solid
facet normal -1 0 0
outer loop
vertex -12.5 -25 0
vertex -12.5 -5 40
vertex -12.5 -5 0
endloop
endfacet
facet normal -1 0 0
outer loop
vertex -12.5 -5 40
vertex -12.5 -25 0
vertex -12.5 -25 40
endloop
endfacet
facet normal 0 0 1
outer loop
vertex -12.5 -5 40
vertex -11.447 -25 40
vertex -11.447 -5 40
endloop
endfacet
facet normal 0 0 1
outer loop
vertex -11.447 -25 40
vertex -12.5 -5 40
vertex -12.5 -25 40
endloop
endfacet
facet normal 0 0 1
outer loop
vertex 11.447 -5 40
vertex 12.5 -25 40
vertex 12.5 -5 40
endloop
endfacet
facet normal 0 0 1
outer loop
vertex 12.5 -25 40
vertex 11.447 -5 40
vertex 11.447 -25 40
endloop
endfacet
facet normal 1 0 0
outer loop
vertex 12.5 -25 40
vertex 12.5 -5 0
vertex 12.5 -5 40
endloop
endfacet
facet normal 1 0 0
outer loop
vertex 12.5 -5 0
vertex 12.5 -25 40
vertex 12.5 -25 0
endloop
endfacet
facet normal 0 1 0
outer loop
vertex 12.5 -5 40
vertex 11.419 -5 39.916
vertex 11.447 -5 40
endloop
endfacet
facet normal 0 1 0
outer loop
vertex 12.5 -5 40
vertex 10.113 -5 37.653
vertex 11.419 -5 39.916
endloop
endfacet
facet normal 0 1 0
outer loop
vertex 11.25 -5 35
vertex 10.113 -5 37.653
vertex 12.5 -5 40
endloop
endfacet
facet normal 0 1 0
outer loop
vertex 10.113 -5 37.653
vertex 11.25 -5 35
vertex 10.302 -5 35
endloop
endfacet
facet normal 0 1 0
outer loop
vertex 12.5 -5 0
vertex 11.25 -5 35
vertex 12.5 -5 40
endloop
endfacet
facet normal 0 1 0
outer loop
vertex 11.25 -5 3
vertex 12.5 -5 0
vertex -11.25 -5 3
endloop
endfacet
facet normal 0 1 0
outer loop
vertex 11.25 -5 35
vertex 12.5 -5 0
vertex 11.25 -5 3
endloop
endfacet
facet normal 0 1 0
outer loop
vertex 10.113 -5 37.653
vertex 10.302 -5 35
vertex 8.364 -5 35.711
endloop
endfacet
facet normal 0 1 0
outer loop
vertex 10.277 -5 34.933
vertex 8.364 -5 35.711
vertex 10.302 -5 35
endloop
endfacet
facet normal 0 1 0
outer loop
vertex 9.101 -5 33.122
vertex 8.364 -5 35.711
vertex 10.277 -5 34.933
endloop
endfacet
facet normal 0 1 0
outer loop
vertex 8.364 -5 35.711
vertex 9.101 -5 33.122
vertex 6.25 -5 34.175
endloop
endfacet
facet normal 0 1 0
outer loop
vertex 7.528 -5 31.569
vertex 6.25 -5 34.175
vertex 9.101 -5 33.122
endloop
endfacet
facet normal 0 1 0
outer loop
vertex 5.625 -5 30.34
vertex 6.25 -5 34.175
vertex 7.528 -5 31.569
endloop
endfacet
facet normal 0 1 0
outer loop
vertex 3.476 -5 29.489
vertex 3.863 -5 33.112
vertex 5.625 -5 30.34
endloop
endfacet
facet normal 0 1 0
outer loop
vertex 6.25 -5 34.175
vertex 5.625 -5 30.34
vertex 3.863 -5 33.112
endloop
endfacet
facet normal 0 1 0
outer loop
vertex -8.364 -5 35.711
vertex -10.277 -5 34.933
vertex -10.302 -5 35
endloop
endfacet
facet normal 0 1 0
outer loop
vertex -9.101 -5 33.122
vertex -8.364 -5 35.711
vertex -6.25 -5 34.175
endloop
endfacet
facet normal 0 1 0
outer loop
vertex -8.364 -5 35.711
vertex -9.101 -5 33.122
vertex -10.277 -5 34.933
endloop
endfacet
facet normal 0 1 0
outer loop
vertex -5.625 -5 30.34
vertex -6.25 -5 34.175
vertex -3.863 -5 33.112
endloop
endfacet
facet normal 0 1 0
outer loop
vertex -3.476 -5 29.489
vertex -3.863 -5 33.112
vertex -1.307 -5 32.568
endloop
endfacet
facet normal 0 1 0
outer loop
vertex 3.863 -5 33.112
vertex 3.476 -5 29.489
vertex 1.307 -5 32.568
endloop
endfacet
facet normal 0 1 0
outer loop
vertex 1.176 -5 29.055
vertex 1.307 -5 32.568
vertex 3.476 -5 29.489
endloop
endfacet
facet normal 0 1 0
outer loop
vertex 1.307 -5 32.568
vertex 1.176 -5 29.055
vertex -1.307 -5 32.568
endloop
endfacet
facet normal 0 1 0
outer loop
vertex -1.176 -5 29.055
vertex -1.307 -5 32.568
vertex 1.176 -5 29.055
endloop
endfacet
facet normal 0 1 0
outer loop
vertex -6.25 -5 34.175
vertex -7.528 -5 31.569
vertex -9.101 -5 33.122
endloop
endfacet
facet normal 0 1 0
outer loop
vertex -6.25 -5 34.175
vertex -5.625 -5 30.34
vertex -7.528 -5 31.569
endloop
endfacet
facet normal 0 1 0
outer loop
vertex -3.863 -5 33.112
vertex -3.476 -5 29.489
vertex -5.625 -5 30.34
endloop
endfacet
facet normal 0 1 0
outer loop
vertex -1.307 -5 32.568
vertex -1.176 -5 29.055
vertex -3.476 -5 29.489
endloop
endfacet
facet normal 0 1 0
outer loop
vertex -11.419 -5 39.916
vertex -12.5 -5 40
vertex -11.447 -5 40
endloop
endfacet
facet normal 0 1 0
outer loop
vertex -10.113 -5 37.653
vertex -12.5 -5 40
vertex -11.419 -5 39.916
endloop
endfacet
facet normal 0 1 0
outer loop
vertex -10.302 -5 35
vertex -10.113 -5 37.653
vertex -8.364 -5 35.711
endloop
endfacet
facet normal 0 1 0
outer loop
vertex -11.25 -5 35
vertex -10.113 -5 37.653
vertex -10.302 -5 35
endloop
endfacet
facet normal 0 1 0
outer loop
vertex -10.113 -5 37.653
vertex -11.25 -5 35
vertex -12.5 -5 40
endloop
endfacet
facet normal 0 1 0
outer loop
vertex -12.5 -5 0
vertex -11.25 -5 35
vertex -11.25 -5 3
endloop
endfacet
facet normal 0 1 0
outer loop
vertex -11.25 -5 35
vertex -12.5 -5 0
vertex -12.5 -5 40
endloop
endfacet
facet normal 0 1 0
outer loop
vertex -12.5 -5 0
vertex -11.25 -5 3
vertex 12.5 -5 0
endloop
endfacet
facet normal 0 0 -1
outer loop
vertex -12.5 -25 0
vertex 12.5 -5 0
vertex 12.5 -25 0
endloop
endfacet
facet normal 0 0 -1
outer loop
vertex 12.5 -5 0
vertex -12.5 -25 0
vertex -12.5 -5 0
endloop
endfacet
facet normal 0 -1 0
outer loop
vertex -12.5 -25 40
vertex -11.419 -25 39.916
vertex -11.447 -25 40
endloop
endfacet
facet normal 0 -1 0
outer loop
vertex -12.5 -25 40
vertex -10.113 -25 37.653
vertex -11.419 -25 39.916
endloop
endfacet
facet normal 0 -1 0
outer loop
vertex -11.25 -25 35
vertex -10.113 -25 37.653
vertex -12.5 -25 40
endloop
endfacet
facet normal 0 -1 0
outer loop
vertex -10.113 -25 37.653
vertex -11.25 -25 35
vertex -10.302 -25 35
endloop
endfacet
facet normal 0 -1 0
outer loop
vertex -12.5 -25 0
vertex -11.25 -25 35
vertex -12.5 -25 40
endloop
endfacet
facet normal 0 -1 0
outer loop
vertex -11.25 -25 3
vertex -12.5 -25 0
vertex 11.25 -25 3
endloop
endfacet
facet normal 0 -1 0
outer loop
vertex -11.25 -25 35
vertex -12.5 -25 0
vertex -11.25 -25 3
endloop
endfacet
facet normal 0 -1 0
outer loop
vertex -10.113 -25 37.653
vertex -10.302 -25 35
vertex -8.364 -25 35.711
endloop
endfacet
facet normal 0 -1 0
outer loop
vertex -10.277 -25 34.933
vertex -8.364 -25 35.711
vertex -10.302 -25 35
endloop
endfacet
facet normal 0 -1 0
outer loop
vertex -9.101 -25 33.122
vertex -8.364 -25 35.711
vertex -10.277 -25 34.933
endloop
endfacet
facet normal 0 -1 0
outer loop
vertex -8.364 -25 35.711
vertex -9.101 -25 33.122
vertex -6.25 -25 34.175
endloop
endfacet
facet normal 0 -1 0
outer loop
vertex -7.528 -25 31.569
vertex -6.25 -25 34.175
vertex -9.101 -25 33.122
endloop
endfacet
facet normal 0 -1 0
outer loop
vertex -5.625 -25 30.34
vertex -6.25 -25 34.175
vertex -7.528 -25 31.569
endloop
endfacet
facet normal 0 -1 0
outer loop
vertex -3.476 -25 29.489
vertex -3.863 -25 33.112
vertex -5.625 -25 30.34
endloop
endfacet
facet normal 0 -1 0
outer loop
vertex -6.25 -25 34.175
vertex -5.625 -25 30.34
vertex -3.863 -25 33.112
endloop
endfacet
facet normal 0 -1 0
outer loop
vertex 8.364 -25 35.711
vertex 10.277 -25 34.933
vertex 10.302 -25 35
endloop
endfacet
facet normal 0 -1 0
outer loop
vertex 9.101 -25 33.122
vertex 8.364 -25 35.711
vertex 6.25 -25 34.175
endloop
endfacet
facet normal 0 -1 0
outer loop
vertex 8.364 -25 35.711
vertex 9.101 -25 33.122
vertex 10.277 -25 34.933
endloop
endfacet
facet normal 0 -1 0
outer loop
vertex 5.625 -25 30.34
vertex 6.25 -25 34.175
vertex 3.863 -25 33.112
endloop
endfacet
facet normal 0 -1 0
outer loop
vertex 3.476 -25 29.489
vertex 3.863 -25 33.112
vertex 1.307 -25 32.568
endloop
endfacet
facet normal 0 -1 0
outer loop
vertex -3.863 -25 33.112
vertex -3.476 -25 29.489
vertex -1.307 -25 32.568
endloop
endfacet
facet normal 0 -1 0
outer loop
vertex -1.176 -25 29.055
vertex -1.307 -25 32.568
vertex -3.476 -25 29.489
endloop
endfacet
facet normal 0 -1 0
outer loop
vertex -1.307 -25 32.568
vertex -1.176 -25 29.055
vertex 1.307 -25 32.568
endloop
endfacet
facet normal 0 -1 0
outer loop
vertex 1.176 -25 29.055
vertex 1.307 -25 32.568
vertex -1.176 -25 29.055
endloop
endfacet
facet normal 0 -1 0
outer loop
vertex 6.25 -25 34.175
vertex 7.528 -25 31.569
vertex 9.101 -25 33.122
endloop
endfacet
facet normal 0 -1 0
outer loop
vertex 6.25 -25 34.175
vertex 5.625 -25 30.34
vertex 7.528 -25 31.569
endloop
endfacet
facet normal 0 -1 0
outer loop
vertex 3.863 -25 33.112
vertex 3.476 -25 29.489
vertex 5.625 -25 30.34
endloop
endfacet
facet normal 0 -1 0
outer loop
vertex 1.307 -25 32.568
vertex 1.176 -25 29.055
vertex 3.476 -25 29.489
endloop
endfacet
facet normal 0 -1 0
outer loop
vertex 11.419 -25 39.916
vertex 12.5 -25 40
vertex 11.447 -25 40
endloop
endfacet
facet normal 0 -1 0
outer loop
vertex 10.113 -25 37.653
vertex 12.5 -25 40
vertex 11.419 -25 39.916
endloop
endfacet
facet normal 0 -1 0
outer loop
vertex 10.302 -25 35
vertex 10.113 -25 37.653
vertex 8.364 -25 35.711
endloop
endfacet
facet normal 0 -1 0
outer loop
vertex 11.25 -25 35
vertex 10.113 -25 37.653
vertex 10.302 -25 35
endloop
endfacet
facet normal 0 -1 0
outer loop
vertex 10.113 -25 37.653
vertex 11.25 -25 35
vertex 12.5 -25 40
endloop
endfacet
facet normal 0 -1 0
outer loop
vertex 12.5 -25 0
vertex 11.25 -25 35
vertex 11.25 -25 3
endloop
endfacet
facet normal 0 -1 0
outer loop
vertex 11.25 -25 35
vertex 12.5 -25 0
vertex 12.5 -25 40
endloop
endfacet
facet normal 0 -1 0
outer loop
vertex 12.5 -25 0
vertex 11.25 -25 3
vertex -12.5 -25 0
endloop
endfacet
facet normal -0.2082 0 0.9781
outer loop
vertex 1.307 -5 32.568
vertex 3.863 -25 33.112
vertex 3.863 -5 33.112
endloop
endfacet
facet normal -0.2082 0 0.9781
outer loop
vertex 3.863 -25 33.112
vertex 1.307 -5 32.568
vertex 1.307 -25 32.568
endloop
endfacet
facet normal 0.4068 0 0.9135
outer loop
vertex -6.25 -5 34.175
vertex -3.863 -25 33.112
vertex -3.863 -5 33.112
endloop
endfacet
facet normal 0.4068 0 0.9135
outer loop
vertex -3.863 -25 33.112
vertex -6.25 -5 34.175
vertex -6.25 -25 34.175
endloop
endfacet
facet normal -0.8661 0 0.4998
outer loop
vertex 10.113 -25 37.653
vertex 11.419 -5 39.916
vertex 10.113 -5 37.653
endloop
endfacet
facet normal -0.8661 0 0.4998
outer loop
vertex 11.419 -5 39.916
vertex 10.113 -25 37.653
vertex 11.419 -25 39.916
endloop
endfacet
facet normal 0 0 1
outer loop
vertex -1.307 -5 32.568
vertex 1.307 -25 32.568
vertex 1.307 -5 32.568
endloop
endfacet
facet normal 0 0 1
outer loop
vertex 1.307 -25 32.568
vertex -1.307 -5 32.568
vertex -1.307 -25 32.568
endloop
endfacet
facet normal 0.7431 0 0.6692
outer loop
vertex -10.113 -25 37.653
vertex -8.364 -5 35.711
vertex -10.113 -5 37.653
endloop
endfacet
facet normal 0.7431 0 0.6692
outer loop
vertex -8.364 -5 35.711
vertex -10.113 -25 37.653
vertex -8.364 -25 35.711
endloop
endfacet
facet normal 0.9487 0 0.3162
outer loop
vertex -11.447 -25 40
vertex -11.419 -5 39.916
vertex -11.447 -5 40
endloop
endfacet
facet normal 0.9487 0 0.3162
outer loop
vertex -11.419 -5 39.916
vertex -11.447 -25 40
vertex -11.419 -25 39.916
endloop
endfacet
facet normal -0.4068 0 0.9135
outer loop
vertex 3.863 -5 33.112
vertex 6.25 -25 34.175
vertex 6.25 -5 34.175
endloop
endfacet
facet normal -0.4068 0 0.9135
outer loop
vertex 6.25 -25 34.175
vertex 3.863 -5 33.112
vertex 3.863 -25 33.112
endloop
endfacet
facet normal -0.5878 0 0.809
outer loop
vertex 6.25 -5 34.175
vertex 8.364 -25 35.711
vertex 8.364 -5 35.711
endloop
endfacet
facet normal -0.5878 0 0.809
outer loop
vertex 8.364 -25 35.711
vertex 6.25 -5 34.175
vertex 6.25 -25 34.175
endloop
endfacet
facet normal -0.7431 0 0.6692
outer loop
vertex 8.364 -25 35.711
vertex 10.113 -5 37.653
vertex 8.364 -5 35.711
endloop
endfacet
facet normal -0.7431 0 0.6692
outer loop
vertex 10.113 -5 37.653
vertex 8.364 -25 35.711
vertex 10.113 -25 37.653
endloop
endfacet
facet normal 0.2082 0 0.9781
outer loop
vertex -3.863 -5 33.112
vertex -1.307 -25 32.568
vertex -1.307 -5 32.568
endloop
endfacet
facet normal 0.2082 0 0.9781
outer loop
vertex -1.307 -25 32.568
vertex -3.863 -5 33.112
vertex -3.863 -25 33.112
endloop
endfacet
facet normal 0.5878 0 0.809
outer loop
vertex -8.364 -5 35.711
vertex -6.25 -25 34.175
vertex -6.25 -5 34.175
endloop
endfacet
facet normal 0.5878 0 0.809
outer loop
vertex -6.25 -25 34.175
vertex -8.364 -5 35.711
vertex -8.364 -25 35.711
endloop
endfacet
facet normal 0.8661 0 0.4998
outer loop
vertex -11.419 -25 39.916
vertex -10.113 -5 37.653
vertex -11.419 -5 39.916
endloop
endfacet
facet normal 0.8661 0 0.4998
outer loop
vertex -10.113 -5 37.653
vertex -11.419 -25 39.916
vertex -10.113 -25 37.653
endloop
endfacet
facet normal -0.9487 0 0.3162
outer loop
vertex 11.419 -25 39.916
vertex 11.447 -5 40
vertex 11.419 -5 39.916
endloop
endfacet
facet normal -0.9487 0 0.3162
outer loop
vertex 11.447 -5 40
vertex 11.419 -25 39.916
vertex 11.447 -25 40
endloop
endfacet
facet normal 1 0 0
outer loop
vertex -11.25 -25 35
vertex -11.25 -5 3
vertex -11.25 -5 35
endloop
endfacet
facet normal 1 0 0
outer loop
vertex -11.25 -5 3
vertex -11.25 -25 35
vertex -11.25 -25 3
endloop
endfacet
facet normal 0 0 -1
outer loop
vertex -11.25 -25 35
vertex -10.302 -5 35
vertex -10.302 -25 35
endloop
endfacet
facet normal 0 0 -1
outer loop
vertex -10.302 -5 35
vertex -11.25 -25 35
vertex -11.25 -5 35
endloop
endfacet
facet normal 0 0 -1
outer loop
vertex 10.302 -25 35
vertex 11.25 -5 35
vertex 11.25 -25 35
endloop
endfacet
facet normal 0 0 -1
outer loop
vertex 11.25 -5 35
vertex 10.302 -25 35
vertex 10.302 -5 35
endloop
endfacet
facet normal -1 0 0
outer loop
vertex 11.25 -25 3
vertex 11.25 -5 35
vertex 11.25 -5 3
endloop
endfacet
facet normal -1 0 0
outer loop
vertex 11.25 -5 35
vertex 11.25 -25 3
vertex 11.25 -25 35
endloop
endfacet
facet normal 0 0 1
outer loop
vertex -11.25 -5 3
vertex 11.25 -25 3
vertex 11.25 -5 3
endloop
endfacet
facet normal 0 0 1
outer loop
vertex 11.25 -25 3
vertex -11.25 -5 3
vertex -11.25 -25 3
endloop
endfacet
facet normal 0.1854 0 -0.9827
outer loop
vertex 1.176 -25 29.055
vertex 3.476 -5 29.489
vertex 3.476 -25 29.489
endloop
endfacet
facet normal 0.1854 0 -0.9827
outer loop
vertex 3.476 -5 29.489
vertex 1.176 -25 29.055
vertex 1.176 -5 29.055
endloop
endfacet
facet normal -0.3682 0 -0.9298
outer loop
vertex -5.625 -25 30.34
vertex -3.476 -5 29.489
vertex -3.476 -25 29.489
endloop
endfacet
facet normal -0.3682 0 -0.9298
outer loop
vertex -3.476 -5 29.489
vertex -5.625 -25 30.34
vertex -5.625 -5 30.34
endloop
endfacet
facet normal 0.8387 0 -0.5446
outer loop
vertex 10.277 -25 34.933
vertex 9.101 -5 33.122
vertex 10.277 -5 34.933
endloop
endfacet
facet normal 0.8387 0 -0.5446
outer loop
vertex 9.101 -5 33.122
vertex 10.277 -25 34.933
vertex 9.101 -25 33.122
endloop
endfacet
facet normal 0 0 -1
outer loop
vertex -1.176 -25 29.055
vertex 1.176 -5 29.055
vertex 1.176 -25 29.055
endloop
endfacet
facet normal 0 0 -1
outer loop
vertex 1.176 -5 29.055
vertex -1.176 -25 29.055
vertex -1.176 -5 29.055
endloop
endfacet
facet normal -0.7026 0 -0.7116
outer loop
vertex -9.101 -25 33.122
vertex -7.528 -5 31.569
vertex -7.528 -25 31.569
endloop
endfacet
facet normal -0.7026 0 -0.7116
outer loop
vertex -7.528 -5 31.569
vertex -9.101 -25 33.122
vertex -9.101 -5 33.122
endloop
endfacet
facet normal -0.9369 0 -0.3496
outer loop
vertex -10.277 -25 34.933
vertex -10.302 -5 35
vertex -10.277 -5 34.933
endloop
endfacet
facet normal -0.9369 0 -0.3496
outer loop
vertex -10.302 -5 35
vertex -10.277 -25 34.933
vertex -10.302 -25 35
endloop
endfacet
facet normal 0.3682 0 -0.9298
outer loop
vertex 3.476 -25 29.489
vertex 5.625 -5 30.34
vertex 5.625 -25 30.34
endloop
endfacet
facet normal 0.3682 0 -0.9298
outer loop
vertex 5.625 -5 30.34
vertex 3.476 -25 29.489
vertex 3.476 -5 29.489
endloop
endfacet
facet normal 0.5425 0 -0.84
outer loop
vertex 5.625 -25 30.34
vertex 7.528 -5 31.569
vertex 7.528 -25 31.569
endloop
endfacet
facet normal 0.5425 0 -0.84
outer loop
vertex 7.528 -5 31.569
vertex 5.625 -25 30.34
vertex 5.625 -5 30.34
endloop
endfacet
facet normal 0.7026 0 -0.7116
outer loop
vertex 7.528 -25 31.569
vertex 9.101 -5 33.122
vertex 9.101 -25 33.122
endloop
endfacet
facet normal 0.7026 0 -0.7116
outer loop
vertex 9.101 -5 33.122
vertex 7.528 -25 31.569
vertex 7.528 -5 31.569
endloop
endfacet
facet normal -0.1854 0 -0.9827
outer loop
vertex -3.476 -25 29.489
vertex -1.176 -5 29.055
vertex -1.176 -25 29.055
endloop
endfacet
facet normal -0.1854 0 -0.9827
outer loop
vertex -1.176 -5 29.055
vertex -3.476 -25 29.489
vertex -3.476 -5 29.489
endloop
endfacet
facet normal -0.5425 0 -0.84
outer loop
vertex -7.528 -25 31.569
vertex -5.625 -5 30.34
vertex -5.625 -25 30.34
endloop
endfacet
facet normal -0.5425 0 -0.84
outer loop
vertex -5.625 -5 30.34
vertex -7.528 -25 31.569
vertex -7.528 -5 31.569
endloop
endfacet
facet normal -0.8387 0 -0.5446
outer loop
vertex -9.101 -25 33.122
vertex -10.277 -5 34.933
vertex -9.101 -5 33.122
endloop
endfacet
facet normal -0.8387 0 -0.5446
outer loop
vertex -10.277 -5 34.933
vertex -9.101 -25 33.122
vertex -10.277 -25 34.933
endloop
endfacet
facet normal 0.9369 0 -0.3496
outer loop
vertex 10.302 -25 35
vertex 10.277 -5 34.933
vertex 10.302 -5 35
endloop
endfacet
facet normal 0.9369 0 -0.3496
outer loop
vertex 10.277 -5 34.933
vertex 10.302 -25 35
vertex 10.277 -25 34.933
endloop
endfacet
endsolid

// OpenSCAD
// motor-böcke für roboter

//motoren sind 25mm durchmesser
//und 40mm ist zentrum vom boden weg

module bock(){
    difference(){
        translate([0,-15,20])
        cube([25,20,40],center=true);
        
        //motor
        translate([0,10,45])
        rotate([90,0,0])
        cylinder(r=25/2, h=50);
    }
}

difference(){
    bock();
    
    translate([0,6,3])
    scale([0.9,2,0.8])
    bock();
}
